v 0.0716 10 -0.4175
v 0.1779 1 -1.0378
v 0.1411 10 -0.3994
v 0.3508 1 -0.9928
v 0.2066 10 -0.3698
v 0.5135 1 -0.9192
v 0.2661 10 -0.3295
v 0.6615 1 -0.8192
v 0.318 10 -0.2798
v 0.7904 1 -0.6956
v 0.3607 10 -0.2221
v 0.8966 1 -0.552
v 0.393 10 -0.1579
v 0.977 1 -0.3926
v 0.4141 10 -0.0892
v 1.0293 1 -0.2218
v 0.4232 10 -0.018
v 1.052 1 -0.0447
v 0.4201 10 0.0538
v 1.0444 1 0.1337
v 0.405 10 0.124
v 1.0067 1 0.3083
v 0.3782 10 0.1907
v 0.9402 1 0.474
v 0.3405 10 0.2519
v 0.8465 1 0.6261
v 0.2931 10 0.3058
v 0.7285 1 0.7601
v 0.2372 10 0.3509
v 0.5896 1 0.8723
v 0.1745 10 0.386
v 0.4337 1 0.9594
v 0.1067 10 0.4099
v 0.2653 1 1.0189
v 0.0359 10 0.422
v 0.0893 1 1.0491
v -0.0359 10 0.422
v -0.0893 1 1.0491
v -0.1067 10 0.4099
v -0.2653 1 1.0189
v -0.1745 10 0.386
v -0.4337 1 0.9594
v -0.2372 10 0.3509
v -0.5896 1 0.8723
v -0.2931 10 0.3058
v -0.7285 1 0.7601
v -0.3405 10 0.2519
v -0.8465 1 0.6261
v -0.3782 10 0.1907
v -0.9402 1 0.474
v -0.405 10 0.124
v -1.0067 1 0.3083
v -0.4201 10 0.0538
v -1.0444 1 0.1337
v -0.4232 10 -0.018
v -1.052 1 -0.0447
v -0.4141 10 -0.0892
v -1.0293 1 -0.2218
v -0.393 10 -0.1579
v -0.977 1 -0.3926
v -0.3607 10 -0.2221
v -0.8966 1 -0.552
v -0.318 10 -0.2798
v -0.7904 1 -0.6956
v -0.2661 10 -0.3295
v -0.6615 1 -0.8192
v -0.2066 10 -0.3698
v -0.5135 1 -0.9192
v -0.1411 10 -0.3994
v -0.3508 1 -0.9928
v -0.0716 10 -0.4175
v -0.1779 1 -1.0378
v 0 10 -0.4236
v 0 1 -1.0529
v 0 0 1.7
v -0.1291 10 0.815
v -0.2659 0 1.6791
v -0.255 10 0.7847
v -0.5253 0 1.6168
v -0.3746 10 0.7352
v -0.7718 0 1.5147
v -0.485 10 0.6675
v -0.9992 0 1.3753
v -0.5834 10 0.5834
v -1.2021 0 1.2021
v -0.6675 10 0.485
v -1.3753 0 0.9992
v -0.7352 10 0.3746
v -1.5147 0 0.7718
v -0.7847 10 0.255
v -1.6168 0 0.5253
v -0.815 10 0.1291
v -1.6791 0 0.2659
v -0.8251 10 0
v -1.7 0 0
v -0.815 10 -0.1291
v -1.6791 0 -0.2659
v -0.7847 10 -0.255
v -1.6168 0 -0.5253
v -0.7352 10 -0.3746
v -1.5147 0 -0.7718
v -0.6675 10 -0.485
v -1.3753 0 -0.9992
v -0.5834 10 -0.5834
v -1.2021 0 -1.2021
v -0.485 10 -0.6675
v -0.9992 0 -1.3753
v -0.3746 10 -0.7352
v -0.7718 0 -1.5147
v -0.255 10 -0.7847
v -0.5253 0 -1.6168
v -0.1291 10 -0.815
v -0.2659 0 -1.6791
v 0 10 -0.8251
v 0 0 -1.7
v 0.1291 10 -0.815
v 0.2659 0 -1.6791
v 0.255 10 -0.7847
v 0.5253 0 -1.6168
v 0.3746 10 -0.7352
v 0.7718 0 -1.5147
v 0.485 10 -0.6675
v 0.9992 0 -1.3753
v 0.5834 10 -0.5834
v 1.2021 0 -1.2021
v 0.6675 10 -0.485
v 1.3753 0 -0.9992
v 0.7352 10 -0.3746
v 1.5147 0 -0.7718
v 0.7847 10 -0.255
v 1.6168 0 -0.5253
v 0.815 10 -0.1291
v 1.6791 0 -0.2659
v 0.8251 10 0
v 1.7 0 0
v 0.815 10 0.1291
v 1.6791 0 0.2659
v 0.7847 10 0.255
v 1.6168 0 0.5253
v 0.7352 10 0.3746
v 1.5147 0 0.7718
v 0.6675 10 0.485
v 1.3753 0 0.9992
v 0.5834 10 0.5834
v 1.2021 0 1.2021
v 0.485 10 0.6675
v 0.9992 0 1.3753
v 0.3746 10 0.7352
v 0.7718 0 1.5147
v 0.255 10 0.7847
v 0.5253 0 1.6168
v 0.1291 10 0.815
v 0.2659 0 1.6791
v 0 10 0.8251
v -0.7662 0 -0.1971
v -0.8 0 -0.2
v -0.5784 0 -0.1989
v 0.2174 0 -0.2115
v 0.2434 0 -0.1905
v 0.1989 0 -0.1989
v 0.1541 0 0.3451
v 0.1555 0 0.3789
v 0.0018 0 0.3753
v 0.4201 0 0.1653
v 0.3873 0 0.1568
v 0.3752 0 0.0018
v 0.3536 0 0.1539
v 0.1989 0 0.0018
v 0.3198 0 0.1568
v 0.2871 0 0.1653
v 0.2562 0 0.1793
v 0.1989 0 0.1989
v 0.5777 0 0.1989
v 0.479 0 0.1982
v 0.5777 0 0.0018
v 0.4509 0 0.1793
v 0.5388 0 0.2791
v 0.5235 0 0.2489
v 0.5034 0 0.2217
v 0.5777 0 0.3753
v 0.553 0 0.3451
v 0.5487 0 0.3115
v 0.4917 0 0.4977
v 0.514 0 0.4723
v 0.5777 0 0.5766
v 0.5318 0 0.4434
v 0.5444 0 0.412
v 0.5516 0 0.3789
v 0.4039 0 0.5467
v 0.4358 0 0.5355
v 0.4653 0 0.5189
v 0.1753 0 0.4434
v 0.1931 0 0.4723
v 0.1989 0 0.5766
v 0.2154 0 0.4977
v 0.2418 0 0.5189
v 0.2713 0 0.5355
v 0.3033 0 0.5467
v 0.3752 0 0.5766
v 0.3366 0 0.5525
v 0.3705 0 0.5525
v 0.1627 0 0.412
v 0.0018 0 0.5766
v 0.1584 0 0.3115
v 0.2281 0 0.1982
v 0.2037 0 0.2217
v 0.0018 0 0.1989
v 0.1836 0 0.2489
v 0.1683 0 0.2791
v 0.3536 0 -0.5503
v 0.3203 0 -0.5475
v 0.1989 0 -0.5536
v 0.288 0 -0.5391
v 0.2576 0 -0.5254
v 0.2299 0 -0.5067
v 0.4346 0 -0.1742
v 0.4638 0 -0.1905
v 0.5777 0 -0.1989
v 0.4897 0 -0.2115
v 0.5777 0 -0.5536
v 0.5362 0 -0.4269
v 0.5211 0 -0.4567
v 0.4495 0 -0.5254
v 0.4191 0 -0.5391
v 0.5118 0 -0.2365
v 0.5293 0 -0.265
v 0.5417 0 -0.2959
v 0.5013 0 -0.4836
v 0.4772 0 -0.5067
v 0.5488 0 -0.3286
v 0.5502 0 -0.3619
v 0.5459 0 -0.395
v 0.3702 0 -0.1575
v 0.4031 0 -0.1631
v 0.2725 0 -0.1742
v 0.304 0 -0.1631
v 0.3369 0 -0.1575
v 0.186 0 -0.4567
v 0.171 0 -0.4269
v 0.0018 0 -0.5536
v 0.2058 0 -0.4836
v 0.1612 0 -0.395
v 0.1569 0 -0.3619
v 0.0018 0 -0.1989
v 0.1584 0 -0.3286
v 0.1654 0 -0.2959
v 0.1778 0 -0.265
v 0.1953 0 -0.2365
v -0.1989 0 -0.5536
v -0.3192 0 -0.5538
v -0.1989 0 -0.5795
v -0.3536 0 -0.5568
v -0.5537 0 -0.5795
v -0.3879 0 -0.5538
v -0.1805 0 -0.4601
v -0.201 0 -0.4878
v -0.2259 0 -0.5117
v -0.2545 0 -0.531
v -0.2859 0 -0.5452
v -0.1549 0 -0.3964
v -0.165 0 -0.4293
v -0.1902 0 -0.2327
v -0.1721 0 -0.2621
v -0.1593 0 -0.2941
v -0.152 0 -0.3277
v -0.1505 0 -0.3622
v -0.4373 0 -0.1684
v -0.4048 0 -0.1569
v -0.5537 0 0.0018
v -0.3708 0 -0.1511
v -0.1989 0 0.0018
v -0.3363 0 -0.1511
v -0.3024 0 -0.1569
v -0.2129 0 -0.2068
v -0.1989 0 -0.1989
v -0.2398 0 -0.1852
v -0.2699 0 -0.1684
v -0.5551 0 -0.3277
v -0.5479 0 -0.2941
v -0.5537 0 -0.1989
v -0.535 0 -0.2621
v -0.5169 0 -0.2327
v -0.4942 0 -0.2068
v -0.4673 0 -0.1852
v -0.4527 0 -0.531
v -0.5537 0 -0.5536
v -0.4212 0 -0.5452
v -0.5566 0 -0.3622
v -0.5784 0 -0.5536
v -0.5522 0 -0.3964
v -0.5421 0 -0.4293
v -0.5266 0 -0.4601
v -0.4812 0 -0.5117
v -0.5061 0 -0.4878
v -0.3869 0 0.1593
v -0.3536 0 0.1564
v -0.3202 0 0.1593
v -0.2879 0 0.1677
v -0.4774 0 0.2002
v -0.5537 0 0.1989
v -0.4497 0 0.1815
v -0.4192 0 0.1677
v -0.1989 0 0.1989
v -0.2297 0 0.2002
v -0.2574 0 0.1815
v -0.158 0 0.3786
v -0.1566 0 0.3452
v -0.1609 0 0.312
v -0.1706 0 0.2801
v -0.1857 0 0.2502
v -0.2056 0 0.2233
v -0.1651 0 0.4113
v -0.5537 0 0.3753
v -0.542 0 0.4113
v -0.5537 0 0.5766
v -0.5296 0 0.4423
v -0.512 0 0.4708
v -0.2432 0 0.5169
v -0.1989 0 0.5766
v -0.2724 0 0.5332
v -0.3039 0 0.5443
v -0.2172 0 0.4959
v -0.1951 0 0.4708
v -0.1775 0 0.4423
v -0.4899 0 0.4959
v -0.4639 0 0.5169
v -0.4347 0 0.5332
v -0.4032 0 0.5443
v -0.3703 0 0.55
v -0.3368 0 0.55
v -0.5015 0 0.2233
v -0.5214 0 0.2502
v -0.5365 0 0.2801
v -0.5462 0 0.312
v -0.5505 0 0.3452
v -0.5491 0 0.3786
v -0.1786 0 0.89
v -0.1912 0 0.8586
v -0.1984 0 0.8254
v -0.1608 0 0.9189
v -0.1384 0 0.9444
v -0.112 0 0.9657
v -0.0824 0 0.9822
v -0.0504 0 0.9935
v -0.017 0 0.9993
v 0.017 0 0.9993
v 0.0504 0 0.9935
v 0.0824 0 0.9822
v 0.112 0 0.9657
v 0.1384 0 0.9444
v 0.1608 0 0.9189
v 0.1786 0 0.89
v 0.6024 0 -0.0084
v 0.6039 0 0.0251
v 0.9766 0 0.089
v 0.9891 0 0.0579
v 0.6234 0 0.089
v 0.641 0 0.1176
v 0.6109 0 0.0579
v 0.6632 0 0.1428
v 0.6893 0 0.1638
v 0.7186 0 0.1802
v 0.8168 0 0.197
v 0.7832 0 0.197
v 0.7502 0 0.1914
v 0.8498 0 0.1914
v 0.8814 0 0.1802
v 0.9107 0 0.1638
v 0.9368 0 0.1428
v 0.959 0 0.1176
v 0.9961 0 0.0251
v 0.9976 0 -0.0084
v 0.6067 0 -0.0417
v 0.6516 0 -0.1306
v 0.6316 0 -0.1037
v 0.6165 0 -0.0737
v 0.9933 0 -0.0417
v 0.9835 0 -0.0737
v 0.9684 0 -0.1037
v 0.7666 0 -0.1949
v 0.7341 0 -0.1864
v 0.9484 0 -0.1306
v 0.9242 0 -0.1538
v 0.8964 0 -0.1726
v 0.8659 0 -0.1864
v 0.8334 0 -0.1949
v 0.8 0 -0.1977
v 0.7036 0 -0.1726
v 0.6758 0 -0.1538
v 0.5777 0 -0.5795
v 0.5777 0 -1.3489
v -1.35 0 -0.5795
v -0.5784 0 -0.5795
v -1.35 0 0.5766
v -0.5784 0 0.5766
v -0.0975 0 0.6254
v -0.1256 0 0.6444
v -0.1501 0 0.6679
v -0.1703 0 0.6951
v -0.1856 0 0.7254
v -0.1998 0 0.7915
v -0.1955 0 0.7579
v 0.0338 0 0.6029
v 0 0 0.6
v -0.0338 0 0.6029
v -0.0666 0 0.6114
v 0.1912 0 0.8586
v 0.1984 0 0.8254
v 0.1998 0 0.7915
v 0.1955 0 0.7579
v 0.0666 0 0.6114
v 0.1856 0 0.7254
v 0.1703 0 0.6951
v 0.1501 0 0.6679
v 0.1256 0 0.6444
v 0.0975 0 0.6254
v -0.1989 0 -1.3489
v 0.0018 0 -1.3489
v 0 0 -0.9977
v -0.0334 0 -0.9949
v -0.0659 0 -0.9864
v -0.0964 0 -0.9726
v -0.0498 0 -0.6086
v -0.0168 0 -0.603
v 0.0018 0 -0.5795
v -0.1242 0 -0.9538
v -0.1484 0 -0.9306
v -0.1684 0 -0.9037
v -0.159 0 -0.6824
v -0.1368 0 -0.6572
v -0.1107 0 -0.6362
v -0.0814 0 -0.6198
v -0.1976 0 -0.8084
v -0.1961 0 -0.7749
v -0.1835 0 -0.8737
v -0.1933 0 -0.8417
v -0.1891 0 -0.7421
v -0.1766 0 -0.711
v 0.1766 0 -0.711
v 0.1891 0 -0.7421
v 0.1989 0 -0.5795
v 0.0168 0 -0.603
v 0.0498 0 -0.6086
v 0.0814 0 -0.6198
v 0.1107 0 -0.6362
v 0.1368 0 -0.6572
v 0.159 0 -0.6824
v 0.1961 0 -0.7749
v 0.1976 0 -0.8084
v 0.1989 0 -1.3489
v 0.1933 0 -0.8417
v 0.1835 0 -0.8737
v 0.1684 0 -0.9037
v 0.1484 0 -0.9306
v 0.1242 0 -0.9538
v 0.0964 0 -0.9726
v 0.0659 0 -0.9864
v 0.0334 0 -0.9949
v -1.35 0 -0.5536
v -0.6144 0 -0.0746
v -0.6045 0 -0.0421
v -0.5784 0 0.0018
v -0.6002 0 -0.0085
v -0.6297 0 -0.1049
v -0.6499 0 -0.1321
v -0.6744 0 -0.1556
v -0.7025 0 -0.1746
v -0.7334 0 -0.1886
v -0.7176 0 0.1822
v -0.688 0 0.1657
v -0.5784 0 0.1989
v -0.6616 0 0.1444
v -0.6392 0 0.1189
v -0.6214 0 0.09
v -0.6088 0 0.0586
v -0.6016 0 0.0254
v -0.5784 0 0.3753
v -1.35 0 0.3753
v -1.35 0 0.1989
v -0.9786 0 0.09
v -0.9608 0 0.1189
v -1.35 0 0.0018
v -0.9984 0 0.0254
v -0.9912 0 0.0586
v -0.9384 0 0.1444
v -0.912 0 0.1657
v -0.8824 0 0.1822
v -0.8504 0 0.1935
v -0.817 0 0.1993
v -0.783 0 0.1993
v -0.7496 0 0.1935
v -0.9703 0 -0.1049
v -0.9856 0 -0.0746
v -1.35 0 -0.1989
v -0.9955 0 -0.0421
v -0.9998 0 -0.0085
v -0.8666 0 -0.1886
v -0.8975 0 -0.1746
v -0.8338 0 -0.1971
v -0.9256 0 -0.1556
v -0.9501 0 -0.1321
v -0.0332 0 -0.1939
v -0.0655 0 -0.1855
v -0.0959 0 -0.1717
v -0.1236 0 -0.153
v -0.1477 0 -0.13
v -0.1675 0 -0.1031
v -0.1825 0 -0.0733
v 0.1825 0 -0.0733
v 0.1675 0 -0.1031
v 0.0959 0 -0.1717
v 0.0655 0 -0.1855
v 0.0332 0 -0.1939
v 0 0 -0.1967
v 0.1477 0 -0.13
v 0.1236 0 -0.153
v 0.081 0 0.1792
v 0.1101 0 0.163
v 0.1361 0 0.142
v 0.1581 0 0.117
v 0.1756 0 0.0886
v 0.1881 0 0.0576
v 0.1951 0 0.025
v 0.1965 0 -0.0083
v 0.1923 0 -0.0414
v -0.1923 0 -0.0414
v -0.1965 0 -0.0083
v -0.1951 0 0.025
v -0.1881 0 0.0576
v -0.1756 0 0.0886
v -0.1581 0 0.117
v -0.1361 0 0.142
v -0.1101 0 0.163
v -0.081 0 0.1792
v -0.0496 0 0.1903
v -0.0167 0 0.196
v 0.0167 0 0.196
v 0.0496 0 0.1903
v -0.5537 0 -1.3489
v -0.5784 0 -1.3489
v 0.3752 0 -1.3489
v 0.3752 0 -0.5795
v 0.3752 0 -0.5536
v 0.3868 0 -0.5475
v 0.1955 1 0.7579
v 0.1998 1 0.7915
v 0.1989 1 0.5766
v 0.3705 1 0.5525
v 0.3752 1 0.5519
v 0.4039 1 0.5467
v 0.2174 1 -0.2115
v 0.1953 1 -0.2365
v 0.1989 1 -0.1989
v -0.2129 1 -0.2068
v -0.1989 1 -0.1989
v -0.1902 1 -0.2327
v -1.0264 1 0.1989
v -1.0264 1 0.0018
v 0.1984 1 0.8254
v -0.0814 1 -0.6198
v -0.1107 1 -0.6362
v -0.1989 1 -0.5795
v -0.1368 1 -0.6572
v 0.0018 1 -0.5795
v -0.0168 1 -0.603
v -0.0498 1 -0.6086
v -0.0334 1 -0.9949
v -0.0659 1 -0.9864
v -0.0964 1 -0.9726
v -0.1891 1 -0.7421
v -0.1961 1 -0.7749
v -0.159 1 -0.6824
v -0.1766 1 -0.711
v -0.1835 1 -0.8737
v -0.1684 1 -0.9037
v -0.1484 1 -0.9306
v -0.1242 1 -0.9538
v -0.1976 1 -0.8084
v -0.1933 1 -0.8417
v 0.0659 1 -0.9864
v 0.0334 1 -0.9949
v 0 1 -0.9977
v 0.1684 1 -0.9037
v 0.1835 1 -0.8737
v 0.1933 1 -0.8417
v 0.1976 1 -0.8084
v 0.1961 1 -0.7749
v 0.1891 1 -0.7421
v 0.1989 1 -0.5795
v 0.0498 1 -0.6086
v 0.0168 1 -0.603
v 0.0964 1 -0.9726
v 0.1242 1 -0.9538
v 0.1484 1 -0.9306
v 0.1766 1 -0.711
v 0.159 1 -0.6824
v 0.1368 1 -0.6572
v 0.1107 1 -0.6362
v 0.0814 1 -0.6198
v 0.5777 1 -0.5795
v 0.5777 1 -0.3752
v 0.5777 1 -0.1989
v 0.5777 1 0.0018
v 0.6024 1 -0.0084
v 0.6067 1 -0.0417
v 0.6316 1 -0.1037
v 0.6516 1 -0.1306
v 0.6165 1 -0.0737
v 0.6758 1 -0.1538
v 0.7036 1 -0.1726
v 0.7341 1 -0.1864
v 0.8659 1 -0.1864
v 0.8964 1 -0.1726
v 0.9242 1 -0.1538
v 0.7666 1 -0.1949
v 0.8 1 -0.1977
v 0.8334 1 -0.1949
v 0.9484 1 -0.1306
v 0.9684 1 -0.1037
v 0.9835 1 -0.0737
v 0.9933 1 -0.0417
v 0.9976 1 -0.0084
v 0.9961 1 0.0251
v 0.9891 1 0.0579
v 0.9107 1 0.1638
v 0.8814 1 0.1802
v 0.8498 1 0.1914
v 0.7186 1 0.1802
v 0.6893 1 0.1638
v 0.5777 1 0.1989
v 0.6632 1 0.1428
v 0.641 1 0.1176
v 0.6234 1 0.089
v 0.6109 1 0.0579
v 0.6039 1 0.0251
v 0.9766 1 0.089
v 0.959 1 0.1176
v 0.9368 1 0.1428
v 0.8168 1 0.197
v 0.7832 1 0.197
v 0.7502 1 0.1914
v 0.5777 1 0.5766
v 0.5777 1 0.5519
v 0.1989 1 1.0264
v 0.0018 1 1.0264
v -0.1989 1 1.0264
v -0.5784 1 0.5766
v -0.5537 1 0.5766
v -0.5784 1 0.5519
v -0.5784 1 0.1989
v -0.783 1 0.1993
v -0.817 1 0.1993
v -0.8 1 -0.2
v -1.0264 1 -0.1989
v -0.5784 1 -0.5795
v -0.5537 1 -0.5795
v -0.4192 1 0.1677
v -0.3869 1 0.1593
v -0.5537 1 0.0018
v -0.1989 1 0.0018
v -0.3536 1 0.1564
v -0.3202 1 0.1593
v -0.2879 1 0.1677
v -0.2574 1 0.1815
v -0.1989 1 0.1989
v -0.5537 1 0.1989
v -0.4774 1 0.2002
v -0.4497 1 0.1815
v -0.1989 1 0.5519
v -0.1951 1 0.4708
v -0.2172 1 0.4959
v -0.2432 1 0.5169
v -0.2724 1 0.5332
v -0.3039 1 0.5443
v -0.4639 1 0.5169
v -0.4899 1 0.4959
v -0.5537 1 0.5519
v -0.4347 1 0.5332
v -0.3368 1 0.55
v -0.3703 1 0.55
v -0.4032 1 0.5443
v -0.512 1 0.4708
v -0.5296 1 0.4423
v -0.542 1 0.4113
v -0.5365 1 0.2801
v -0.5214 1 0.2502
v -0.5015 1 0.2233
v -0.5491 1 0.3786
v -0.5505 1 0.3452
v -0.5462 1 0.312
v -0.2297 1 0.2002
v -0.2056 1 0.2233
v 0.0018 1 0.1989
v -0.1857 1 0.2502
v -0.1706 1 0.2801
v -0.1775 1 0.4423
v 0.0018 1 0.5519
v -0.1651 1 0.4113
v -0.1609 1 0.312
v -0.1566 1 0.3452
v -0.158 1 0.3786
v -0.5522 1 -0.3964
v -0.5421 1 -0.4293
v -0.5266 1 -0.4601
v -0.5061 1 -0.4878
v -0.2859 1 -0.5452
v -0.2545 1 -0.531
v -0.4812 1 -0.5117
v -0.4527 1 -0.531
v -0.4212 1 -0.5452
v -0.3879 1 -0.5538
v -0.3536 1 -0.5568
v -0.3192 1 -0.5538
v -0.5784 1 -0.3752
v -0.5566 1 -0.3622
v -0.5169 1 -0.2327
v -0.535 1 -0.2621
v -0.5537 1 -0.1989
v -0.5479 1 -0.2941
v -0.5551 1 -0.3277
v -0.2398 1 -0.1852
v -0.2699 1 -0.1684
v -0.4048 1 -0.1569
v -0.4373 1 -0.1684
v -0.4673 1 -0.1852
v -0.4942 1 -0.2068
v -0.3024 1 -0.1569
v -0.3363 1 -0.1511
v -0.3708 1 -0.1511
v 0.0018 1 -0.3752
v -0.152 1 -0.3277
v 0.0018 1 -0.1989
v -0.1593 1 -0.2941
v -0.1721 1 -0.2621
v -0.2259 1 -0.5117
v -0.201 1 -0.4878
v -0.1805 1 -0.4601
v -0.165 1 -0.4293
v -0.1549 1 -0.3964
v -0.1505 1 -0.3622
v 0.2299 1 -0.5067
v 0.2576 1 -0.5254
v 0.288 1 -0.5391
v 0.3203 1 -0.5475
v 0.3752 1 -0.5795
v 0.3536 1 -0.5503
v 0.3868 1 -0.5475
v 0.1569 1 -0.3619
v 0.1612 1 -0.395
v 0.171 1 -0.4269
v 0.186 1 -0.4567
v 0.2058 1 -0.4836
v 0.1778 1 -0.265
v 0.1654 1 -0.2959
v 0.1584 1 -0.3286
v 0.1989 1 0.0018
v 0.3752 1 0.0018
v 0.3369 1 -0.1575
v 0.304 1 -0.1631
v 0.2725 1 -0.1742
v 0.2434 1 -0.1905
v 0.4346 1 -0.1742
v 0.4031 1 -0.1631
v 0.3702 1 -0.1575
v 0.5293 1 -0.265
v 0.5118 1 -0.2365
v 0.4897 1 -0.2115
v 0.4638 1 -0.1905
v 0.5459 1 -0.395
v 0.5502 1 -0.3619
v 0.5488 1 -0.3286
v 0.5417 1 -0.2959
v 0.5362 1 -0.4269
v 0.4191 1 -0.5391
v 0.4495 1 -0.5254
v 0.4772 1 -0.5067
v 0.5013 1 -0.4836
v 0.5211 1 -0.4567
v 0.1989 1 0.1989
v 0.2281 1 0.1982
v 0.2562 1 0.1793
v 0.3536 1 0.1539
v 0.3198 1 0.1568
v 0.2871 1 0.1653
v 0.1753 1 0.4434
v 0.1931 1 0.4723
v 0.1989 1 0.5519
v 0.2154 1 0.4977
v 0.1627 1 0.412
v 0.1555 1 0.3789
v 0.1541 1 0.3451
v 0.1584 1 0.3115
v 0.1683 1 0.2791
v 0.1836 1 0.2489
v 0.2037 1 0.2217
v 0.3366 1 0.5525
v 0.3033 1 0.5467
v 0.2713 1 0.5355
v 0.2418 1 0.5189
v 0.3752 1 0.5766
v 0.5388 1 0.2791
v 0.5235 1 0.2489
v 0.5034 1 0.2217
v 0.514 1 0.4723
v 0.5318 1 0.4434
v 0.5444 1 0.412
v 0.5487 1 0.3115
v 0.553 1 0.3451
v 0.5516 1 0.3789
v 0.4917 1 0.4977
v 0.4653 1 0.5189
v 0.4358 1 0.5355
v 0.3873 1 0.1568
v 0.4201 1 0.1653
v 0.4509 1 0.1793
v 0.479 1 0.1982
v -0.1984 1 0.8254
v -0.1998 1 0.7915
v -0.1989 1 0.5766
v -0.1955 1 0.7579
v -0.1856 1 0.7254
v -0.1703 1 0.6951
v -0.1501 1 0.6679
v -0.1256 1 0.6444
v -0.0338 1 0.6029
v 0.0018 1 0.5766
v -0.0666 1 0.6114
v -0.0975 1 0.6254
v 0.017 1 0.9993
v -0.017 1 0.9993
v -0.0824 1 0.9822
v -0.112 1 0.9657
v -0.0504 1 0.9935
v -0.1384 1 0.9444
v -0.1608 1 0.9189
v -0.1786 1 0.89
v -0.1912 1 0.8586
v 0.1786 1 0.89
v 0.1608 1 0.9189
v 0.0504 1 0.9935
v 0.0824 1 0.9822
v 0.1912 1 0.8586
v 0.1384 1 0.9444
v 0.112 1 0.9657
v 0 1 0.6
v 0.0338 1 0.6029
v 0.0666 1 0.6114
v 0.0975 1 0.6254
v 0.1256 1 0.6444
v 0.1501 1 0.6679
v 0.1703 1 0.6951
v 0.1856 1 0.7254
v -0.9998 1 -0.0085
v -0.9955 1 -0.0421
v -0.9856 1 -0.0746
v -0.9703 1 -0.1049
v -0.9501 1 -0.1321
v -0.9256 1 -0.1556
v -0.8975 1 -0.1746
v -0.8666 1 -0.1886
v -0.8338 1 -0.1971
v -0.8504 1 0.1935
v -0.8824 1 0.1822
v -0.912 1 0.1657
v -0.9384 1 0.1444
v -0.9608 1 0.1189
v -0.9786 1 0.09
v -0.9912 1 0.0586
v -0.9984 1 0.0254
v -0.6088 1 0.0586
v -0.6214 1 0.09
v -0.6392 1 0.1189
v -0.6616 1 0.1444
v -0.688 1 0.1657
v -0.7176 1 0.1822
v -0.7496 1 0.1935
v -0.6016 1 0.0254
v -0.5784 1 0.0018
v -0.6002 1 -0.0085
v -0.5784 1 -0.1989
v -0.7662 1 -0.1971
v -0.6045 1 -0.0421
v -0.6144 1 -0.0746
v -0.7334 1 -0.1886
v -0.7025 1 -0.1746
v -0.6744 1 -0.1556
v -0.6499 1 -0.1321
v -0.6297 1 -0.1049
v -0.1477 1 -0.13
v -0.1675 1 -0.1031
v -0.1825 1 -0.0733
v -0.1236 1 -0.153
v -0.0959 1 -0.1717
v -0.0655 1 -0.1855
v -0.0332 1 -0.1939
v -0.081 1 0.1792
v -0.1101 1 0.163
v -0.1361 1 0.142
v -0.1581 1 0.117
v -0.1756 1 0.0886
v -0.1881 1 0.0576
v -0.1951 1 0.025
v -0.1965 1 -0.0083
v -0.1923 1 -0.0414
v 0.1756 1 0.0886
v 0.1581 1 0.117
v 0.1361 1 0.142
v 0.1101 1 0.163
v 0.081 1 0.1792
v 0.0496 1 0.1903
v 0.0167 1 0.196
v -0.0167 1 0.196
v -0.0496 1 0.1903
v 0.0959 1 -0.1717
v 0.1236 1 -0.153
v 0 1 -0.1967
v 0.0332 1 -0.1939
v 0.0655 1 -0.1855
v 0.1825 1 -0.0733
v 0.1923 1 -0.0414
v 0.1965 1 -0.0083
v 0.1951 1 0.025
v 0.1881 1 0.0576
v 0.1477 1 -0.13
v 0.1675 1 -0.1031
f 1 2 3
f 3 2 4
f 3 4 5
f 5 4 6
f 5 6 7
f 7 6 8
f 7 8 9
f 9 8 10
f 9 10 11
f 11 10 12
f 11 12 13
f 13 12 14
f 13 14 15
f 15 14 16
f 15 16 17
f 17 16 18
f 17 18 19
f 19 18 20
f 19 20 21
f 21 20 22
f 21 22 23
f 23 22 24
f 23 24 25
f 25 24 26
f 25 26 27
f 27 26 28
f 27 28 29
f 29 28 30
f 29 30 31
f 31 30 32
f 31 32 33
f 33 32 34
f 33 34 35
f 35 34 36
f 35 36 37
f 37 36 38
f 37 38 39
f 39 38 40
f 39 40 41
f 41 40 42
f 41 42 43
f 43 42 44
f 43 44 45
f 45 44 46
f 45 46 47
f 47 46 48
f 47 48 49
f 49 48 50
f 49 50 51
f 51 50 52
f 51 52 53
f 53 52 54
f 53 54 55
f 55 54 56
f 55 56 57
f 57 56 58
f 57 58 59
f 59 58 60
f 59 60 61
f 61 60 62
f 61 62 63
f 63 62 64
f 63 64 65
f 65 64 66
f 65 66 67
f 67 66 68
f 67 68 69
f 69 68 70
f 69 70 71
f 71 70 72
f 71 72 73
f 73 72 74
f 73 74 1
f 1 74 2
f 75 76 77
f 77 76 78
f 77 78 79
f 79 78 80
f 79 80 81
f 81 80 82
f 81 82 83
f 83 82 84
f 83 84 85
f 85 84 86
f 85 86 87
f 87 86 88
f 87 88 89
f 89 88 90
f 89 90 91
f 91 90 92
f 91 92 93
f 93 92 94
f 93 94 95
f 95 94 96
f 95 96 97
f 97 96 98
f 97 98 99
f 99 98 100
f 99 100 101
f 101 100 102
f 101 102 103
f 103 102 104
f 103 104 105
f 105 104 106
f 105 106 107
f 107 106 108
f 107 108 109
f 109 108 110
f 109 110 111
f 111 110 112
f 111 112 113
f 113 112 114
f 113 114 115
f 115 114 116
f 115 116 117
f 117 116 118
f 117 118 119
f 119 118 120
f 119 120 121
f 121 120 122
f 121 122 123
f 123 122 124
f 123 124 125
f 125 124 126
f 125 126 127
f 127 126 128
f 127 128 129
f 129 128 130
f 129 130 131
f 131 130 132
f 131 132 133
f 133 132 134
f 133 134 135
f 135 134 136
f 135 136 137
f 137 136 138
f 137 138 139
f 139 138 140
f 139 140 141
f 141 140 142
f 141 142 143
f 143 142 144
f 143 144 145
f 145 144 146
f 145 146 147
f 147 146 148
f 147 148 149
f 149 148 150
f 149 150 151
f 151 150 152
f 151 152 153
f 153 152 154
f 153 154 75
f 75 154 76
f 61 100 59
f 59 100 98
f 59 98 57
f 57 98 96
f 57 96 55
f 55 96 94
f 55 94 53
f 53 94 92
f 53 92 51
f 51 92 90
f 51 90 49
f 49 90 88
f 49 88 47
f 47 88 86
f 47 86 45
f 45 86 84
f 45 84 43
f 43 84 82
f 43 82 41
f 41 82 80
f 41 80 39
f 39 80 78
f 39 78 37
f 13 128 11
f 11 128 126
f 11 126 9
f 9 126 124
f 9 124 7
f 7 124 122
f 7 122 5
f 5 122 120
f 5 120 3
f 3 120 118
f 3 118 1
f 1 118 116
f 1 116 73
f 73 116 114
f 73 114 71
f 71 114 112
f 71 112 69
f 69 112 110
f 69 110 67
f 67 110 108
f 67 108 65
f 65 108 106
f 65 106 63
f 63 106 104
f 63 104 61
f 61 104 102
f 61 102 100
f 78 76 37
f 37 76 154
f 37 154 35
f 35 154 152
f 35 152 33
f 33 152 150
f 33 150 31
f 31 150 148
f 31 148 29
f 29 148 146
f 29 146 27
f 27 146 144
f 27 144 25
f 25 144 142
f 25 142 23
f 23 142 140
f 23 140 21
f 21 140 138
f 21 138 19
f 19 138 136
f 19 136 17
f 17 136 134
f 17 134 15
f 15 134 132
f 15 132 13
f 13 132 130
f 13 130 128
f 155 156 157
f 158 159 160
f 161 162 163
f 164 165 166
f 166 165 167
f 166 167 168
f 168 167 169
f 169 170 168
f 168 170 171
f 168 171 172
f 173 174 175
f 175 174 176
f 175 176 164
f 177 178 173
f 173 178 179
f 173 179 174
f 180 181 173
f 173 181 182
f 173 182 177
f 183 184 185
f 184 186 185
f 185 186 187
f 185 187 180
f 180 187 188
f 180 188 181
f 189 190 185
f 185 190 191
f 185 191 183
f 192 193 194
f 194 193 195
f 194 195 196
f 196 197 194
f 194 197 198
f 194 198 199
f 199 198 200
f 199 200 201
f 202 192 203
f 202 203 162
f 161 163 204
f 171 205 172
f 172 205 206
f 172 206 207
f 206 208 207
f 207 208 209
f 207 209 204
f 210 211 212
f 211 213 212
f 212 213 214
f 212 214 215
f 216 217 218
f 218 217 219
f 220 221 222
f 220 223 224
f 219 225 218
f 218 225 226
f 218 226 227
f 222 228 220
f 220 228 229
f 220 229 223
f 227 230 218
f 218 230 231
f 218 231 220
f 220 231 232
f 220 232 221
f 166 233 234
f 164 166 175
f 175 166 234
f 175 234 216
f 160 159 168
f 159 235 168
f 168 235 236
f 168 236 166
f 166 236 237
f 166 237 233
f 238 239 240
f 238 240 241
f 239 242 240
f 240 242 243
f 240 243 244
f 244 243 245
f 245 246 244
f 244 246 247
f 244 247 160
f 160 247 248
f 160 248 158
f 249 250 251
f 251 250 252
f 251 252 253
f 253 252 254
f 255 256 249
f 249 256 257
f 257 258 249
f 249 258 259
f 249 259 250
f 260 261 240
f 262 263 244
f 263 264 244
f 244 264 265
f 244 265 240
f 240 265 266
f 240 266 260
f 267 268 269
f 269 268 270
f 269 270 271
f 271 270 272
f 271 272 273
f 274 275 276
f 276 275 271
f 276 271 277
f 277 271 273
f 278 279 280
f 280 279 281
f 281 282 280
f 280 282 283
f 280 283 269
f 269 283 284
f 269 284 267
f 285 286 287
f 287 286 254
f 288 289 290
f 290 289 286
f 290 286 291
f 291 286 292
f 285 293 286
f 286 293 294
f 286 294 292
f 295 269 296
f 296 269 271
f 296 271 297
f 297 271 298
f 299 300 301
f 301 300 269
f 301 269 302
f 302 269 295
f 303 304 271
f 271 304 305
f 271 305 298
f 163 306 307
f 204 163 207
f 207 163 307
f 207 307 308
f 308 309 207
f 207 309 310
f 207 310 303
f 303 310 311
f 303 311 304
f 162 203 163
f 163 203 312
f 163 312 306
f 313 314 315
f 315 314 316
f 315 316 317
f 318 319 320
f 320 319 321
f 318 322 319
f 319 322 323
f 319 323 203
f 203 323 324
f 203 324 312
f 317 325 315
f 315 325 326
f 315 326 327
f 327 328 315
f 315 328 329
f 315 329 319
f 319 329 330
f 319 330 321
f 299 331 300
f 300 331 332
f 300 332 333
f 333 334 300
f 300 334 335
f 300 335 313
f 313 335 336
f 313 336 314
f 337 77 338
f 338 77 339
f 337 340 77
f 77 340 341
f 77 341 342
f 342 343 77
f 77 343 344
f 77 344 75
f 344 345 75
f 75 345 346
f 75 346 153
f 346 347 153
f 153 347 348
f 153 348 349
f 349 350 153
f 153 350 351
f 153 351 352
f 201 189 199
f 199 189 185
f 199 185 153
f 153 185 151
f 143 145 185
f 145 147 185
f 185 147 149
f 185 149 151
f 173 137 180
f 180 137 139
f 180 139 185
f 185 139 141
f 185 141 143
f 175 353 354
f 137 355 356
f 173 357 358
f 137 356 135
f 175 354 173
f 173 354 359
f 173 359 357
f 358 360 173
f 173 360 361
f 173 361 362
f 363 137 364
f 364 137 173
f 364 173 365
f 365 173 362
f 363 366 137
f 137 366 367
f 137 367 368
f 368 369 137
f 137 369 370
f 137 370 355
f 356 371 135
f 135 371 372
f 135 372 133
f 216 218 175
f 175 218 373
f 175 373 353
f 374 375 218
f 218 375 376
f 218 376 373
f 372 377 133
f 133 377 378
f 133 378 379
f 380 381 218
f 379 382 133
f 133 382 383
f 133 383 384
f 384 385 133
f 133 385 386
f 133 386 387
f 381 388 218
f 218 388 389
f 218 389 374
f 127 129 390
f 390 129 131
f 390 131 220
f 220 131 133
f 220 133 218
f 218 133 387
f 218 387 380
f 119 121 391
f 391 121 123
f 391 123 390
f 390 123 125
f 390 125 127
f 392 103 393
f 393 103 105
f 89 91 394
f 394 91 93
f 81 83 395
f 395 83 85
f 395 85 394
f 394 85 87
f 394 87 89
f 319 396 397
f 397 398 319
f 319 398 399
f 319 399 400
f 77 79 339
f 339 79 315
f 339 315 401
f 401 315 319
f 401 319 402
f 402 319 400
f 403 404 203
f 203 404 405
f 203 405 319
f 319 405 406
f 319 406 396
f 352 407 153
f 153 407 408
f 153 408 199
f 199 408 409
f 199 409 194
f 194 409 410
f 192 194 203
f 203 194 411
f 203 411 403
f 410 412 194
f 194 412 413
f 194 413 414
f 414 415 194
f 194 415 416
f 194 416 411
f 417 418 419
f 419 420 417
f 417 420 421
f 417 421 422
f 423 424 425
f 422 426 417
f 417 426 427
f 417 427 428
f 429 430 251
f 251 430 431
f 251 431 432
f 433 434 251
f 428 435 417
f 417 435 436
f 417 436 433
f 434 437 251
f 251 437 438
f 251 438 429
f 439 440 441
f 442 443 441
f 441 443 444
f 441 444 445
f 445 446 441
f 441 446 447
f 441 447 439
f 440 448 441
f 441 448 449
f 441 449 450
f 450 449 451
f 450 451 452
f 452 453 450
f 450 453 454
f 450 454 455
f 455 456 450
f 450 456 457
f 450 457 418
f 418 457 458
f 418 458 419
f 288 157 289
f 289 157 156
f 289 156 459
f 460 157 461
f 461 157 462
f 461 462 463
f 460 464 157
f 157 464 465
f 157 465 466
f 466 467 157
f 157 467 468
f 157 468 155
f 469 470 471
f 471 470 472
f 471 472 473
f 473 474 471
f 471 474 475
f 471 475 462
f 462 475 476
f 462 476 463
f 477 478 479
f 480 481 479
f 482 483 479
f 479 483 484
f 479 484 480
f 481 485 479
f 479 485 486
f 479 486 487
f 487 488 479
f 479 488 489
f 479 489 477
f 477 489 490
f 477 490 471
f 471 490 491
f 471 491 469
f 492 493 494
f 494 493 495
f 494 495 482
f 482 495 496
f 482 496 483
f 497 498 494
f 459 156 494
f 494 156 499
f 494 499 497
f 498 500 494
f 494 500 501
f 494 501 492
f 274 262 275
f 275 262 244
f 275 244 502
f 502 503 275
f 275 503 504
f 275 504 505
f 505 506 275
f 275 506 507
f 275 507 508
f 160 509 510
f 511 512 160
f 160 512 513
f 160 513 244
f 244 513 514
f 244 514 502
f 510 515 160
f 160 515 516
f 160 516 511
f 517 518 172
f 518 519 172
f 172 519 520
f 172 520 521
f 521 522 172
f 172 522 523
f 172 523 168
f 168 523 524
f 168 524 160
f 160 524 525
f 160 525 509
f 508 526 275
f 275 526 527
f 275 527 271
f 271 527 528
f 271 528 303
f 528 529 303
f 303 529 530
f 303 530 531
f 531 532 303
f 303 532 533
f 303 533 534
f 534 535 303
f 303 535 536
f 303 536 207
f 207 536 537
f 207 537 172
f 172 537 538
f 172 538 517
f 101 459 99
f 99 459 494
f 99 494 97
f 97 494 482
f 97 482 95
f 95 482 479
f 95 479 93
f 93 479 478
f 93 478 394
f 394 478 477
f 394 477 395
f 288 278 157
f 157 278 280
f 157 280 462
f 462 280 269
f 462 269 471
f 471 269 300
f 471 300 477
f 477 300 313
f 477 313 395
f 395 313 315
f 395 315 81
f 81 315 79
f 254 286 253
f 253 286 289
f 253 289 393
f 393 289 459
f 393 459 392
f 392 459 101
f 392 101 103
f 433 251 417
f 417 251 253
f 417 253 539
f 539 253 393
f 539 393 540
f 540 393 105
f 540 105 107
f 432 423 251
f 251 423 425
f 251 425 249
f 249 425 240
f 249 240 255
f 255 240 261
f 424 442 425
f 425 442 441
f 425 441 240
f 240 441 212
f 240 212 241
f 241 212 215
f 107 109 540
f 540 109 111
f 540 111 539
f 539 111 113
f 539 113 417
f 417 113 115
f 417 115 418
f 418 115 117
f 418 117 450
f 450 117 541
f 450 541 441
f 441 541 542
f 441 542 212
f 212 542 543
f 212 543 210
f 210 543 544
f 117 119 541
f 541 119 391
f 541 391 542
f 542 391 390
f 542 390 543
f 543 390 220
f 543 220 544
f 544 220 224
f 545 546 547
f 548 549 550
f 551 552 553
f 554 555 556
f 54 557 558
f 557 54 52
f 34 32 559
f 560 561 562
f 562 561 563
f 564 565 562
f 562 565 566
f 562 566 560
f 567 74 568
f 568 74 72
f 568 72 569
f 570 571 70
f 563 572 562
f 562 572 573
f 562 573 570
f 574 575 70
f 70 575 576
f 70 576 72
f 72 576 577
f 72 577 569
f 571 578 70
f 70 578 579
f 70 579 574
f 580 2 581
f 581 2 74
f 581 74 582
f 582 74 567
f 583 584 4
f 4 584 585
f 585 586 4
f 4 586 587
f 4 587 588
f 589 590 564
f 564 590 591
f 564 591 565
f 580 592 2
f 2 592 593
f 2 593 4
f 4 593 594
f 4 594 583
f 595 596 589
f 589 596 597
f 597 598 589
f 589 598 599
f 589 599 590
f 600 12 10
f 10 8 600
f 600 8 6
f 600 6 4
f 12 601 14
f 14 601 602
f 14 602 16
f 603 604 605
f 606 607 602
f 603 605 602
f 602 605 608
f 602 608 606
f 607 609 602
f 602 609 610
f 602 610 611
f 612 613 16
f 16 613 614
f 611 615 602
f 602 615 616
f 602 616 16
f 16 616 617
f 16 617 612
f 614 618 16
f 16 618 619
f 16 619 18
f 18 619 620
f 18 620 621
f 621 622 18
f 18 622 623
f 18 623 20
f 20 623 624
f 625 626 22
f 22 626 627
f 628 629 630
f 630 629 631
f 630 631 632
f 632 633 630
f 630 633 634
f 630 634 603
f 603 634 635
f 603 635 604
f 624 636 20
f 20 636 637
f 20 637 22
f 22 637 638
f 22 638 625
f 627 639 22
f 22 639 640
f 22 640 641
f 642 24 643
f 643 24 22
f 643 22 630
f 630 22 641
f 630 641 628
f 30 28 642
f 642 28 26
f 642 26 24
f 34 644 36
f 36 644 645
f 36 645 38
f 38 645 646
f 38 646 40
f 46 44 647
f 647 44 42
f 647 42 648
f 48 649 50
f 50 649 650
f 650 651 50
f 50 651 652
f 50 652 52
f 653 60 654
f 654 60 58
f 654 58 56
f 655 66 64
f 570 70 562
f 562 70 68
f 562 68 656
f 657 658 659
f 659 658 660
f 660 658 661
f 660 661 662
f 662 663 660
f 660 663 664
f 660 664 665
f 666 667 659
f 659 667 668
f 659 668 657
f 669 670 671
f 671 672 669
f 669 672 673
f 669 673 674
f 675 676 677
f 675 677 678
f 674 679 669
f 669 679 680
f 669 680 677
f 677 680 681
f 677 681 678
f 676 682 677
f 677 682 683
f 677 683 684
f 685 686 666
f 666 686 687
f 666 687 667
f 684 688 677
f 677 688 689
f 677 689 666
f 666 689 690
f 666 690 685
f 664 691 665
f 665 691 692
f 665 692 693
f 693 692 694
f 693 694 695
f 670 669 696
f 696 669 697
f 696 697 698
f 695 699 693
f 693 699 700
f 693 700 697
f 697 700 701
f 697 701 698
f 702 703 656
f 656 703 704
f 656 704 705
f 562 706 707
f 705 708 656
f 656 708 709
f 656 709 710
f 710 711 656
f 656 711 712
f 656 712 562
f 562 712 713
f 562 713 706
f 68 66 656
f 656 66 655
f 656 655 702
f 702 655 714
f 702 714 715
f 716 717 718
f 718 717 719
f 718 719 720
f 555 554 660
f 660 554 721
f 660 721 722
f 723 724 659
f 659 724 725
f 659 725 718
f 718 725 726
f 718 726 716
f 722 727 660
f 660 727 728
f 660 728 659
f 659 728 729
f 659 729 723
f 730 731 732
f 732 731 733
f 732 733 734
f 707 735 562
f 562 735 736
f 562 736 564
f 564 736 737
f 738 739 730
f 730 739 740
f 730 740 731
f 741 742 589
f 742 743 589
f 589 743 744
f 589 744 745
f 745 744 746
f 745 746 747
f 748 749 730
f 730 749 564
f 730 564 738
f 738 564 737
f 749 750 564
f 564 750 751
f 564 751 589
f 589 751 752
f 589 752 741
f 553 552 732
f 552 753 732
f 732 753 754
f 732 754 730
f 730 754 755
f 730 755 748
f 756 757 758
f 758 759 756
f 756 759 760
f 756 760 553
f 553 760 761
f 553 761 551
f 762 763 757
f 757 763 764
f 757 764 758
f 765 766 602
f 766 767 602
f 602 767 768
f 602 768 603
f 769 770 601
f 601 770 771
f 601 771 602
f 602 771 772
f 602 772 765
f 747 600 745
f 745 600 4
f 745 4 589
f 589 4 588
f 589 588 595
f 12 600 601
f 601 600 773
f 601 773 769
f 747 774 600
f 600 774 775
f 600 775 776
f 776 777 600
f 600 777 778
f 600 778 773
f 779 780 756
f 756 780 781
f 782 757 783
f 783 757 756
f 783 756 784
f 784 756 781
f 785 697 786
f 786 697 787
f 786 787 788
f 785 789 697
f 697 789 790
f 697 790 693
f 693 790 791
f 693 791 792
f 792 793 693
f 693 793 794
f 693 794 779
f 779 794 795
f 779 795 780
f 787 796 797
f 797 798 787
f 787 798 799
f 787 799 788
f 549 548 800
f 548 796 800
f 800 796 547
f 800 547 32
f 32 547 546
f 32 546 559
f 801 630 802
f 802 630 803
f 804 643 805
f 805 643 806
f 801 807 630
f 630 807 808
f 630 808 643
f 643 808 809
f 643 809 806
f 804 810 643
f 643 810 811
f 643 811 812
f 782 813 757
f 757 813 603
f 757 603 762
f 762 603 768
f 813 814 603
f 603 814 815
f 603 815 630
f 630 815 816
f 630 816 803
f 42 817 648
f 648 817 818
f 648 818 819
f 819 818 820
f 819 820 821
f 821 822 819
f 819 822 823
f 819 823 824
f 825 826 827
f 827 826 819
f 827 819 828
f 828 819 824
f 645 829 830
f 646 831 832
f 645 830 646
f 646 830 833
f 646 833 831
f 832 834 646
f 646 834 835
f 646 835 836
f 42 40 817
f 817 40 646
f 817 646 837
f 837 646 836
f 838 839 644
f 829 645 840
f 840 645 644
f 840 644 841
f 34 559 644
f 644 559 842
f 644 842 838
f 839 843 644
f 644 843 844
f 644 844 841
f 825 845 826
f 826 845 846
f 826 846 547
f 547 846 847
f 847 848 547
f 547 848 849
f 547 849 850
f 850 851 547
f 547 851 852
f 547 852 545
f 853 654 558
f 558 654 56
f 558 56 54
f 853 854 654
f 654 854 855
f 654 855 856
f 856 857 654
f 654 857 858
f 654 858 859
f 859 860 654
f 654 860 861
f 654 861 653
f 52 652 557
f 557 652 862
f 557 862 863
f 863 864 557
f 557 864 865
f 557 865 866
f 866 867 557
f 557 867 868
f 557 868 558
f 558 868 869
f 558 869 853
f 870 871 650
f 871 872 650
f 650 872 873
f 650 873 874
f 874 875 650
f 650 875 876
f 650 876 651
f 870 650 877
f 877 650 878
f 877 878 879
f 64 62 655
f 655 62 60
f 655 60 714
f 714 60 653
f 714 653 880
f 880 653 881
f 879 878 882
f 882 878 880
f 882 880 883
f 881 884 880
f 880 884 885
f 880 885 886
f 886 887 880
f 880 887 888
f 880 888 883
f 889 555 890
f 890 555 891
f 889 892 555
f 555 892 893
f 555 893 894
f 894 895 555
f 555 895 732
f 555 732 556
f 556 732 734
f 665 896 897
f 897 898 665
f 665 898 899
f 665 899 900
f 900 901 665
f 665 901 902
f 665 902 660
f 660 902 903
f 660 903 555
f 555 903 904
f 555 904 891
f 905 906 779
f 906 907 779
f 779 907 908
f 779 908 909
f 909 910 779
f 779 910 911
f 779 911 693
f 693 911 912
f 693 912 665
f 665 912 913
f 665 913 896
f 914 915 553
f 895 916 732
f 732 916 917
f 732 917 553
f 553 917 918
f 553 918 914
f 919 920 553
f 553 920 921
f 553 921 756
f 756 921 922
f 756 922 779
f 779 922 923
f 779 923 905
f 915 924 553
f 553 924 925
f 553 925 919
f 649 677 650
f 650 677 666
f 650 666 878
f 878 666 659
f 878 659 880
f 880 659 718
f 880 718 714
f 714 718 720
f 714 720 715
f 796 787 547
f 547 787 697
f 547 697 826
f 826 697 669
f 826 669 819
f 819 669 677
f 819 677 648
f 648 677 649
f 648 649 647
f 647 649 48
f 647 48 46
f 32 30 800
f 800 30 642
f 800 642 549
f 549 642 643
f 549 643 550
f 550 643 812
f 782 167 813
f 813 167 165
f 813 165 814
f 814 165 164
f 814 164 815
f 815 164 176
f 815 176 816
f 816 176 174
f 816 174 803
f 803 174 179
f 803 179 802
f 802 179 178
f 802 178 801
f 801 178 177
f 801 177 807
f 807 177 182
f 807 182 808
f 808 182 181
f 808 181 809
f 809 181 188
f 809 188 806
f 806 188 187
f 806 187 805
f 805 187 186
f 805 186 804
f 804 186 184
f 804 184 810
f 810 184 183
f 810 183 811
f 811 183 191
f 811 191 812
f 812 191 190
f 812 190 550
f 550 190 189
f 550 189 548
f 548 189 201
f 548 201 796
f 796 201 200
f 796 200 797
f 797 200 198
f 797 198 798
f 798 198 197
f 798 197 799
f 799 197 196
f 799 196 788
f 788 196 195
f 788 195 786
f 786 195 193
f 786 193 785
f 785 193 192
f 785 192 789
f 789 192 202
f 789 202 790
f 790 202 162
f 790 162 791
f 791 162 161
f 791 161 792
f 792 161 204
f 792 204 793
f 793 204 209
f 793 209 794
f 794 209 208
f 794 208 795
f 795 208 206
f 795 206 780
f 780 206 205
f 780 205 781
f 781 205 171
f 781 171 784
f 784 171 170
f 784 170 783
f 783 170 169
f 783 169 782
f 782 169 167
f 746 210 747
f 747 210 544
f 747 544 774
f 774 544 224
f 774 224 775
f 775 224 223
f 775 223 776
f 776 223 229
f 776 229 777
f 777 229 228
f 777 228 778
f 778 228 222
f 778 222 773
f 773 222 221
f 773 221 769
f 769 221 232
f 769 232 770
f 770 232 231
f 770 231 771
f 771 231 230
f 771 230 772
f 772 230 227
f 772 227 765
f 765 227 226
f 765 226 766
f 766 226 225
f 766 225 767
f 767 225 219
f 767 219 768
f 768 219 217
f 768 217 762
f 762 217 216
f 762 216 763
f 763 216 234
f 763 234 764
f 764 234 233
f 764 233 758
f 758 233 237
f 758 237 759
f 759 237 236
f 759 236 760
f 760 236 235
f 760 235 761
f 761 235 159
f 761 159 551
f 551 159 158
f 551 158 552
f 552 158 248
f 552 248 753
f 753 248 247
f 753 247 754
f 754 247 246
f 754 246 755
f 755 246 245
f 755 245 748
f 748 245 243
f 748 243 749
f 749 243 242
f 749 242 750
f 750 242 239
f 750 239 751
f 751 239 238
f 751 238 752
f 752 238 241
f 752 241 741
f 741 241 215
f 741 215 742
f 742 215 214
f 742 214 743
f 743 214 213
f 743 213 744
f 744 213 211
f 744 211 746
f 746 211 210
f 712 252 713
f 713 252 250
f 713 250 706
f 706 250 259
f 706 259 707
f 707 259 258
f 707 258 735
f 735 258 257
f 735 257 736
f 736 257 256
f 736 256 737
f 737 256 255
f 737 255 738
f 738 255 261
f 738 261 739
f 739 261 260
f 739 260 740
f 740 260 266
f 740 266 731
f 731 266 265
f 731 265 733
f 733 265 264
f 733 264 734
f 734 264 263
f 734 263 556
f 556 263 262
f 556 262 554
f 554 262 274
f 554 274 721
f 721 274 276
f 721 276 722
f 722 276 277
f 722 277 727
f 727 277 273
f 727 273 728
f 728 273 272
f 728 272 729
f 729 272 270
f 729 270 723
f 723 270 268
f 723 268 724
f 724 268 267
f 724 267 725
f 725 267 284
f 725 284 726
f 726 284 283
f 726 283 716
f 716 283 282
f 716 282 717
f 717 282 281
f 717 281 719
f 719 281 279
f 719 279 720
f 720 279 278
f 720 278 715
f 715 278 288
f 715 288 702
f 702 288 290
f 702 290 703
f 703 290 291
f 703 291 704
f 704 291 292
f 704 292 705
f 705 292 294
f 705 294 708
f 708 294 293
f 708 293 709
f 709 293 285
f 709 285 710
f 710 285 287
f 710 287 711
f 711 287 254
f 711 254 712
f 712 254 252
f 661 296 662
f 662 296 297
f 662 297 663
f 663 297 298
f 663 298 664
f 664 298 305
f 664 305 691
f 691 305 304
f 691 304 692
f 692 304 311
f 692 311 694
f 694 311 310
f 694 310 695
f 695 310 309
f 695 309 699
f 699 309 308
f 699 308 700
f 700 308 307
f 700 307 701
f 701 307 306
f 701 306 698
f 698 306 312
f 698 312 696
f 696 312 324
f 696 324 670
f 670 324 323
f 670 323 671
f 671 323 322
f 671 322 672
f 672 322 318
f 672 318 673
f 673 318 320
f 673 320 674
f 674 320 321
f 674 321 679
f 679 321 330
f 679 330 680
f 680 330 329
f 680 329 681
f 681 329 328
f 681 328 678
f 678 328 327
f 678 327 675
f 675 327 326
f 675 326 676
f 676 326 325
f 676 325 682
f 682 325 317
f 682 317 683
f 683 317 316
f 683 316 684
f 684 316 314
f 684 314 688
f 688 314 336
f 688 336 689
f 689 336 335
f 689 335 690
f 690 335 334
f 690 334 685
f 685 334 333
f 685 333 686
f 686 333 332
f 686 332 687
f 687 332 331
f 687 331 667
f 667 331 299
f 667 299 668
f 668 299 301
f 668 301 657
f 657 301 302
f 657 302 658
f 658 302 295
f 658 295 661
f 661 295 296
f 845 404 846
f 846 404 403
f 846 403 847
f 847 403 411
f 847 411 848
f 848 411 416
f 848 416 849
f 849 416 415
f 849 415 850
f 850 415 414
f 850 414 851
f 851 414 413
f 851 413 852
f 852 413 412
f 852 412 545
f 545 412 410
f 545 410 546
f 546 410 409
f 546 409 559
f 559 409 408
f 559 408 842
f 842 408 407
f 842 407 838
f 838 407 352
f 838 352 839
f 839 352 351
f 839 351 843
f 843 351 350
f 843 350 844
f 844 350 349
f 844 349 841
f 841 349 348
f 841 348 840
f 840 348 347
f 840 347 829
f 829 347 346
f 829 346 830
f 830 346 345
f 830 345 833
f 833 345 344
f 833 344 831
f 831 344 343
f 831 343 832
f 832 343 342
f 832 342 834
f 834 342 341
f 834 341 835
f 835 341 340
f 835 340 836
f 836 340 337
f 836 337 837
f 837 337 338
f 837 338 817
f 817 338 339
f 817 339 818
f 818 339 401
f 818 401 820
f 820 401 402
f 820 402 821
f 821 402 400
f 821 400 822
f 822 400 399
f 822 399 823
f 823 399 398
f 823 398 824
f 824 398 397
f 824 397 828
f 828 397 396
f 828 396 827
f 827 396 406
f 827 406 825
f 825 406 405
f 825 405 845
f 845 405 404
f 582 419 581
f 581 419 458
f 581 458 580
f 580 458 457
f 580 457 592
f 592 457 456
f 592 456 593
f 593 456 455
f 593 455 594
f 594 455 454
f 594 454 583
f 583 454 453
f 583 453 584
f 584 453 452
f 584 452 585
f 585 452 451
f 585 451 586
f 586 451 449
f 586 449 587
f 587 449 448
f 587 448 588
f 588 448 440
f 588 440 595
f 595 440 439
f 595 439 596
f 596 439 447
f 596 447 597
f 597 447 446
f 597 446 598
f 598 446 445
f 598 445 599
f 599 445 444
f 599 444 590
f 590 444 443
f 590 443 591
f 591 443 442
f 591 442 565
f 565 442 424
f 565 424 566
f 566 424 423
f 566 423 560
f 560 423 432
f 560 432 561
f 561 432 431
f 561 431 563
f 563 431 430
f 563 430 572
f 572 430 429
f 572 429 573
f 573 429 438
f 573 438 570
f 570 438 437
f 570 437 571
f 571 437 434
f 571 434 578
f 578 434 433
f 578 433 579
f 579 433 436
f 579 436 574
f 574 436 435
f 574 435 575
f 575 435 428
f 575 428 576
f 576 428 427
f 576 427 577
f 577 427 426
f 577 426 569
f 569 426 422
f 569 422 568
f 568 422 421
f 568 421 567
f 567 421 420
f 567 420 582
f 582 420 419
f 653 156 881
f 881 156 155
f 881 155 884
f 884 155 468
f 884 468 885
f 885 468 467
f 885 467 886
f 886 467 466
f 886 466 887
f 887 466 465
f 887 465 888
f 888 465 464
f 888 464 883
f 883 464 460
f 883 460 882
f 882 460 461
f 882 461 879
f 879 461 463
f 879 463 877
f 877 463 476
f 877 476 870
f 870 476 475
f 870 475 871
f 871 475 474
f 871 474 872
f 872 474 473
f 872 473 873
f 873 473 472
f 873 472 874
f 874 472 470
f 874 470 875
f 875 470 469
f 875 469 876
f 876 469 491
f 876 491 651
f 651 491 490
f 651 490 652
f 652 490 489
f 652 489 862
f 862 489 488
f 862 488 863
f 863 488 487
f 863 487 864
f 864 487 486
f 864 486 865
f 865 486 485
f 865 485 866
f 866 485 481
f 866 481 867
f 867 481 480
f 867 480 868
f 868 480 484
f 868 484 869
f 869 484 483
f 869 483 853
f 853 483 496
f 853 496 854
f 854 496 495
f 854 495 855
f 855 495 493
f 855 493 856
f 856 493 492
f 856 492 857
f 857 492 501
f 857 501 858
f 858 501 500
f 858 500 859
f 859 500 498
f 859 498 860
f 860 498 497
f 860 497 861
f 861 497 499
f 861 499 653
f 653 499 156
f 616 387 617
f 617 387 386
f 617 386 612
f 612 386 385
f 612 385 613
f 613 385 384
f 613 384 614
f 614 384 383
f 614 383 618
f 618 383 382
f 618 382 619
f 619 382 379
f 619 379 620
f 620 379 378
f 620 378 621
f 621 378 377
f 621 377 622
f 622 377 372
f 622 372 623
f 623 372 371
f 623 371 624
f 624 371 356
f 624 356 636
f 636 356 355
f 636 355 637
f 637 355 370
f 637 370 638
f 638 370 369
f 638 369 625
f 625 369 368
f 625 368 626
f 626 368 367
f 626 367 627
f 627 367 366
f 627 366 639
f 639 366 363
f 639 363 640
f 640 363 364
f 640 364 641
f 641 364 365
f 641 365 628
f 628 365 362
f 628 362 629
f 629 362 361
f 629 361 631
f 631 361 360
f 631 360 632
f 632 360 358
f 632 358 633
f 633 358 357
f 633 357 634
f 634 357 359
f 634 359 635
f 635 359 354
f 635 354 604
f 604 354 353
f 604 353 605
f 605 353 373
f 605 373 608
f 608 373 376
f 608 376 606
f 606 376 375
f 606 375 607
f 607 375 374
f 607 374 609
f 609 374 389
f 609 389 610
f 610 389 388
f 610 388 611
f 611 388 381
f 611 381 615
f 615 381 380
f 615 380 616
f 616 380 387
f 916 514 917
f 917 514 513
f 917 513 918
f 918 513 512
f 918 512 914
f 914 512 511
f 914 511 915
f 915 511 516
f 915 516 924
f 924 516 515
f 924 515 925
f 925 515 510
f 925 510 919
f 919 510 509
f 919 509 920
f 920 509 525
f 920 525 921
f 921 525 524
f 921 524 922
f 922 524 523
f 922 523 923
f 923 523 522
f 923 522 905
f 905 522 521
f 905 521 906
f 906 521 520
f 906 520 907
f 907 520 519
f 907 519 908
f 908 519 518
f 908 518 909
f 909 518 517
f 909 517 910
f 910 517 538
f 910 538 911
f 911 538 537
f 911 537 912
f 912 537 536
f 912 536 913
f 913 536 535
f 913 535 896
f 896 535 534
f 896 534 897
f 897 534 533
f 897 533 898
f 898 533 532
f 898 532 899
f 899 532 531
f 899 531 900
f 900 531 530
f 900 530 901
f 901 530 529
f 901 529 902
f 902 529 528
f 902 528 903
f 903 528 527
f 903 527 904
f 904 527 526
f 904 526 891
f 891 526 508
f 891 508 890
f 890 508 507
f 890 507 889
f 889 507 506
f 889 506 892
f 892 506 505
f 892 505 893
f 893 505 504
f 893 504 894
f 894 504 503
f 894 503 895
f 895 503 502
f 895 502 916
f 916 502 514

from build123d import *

# Parameters (mm, degrees)
IZIM1_R                     = 1.7
Y_KSEKLIK_EKSTR_ZYON1_DEPTH = 10
Y_KSEKLIK_EKSTR_ZYON1_TAPER = 5
IZIM2_R                     = 1.122825905
KES_EKSTR_ZYON1_DEPTH       = 10
KES_EKSTR_ZYON1_TAPER       = 4
IZIM3_R                     = 1.122825905
IZIM3_R_2                   = 0.19962026
IZIM3_R_3                   = 0.196792851
IZIM3_R_4                   = 0.203205658
IZIM3_R_5                   = 0.197119951
Y_KSEKLIK_EKSTR_ZYON3_DEPTH = 1
IZIM5_R                     = 0.197735833
IZIM5_R_2                   = 0.2
KES_EKSTR_ZYON2_DEPTH       = 1
IZIM6_R                     = 0.196695493
KES_EKSTR_ZYON3_DEPTH       = 1


with BuildPart() as part:
    # Çizim1 → Yükseklik-Ekstrüzyon1 (new body)
    with BuildSketch(Plane(origin=(0, 0, 0), x_dir=(1, 0, 0), z_dir=(0, 1, 0))):
        Circle(IZIM1_R)
    extrude(amount=Y_KSEKLIK_EKSTR_ZYON1_DEPTH, taper=Y_KSEKLIK_EKSTR_ZYON1_TAPER)

    # Çizim2 → Kes-Ekstrüzyon1 (cut)
    with BuildSketch(Plane.XZ):
        Circle(IZIM2_R)
    extrude(amount=-KES_EKSTR_ZYON1_DEPTH, taper=KES_EKSTR_ZYON1_TAPER, mode=Mode.SUBTRACT)

    # Çizim3 → Yükseklik-Ekstrüzyon3 (add)
    with BuildSketch(Plane(origin=(0, 0, 0), x_dir=(-1, 0, 0), z_dir=(0, -1, 0))):
        Circle(IZIM3_R)
        with Locations((-0.353553391, -0.353553391)):
            Circle(IZIM3_R_2, mode=Mode.SUBTRACT)
        with Locations((-0.353553391, 0.353553391)):
            Circle(IZIM3_R_3, mode=Mode.SUBTRACT)
        with Locations((0.353553391, 0.353553391)):
            Circle(IZIM3_R_4, mode=Mode.SUBTRACT)
        with Locations((0.353553391, -0.353553391)):
            Circle(IZIM3_R_5, mode=Mode.SUBTRACT)
    extrude(amount=-Y_KSEKLIK_EKSTR_ZYON3_DEPTH)

    # Çizim5 → Kes-Ekstrüzyon2 (cut)
    with BuildSketch(Plane.XZ):
        with Locations((0.8, 0)):
            Circle(IZIM5_R)
        with Locations((-0.8, 0)):
            Circle(IZIM5_R_2)
        with Locations((0, -0.8)):
            Circle(IZIM5_R)
        with Locations((0, 0.8)):
            Circle(IZIM5_R_2)
    extrude(amount=-KES_EKSTR_ZYON2_DEPTH, mode=Mode.SUBTRACT)

    # Çizim6 → Kes-Ekstrüzyon3 (cut)
    with BuildSketch(Plane.XZ):
        Circle(IZIM6_R)
    extrude(amount=-KES_EKSTR_ZYON3_DEPTH, mode=Mode.SUBTRACT)


solid = part.part
